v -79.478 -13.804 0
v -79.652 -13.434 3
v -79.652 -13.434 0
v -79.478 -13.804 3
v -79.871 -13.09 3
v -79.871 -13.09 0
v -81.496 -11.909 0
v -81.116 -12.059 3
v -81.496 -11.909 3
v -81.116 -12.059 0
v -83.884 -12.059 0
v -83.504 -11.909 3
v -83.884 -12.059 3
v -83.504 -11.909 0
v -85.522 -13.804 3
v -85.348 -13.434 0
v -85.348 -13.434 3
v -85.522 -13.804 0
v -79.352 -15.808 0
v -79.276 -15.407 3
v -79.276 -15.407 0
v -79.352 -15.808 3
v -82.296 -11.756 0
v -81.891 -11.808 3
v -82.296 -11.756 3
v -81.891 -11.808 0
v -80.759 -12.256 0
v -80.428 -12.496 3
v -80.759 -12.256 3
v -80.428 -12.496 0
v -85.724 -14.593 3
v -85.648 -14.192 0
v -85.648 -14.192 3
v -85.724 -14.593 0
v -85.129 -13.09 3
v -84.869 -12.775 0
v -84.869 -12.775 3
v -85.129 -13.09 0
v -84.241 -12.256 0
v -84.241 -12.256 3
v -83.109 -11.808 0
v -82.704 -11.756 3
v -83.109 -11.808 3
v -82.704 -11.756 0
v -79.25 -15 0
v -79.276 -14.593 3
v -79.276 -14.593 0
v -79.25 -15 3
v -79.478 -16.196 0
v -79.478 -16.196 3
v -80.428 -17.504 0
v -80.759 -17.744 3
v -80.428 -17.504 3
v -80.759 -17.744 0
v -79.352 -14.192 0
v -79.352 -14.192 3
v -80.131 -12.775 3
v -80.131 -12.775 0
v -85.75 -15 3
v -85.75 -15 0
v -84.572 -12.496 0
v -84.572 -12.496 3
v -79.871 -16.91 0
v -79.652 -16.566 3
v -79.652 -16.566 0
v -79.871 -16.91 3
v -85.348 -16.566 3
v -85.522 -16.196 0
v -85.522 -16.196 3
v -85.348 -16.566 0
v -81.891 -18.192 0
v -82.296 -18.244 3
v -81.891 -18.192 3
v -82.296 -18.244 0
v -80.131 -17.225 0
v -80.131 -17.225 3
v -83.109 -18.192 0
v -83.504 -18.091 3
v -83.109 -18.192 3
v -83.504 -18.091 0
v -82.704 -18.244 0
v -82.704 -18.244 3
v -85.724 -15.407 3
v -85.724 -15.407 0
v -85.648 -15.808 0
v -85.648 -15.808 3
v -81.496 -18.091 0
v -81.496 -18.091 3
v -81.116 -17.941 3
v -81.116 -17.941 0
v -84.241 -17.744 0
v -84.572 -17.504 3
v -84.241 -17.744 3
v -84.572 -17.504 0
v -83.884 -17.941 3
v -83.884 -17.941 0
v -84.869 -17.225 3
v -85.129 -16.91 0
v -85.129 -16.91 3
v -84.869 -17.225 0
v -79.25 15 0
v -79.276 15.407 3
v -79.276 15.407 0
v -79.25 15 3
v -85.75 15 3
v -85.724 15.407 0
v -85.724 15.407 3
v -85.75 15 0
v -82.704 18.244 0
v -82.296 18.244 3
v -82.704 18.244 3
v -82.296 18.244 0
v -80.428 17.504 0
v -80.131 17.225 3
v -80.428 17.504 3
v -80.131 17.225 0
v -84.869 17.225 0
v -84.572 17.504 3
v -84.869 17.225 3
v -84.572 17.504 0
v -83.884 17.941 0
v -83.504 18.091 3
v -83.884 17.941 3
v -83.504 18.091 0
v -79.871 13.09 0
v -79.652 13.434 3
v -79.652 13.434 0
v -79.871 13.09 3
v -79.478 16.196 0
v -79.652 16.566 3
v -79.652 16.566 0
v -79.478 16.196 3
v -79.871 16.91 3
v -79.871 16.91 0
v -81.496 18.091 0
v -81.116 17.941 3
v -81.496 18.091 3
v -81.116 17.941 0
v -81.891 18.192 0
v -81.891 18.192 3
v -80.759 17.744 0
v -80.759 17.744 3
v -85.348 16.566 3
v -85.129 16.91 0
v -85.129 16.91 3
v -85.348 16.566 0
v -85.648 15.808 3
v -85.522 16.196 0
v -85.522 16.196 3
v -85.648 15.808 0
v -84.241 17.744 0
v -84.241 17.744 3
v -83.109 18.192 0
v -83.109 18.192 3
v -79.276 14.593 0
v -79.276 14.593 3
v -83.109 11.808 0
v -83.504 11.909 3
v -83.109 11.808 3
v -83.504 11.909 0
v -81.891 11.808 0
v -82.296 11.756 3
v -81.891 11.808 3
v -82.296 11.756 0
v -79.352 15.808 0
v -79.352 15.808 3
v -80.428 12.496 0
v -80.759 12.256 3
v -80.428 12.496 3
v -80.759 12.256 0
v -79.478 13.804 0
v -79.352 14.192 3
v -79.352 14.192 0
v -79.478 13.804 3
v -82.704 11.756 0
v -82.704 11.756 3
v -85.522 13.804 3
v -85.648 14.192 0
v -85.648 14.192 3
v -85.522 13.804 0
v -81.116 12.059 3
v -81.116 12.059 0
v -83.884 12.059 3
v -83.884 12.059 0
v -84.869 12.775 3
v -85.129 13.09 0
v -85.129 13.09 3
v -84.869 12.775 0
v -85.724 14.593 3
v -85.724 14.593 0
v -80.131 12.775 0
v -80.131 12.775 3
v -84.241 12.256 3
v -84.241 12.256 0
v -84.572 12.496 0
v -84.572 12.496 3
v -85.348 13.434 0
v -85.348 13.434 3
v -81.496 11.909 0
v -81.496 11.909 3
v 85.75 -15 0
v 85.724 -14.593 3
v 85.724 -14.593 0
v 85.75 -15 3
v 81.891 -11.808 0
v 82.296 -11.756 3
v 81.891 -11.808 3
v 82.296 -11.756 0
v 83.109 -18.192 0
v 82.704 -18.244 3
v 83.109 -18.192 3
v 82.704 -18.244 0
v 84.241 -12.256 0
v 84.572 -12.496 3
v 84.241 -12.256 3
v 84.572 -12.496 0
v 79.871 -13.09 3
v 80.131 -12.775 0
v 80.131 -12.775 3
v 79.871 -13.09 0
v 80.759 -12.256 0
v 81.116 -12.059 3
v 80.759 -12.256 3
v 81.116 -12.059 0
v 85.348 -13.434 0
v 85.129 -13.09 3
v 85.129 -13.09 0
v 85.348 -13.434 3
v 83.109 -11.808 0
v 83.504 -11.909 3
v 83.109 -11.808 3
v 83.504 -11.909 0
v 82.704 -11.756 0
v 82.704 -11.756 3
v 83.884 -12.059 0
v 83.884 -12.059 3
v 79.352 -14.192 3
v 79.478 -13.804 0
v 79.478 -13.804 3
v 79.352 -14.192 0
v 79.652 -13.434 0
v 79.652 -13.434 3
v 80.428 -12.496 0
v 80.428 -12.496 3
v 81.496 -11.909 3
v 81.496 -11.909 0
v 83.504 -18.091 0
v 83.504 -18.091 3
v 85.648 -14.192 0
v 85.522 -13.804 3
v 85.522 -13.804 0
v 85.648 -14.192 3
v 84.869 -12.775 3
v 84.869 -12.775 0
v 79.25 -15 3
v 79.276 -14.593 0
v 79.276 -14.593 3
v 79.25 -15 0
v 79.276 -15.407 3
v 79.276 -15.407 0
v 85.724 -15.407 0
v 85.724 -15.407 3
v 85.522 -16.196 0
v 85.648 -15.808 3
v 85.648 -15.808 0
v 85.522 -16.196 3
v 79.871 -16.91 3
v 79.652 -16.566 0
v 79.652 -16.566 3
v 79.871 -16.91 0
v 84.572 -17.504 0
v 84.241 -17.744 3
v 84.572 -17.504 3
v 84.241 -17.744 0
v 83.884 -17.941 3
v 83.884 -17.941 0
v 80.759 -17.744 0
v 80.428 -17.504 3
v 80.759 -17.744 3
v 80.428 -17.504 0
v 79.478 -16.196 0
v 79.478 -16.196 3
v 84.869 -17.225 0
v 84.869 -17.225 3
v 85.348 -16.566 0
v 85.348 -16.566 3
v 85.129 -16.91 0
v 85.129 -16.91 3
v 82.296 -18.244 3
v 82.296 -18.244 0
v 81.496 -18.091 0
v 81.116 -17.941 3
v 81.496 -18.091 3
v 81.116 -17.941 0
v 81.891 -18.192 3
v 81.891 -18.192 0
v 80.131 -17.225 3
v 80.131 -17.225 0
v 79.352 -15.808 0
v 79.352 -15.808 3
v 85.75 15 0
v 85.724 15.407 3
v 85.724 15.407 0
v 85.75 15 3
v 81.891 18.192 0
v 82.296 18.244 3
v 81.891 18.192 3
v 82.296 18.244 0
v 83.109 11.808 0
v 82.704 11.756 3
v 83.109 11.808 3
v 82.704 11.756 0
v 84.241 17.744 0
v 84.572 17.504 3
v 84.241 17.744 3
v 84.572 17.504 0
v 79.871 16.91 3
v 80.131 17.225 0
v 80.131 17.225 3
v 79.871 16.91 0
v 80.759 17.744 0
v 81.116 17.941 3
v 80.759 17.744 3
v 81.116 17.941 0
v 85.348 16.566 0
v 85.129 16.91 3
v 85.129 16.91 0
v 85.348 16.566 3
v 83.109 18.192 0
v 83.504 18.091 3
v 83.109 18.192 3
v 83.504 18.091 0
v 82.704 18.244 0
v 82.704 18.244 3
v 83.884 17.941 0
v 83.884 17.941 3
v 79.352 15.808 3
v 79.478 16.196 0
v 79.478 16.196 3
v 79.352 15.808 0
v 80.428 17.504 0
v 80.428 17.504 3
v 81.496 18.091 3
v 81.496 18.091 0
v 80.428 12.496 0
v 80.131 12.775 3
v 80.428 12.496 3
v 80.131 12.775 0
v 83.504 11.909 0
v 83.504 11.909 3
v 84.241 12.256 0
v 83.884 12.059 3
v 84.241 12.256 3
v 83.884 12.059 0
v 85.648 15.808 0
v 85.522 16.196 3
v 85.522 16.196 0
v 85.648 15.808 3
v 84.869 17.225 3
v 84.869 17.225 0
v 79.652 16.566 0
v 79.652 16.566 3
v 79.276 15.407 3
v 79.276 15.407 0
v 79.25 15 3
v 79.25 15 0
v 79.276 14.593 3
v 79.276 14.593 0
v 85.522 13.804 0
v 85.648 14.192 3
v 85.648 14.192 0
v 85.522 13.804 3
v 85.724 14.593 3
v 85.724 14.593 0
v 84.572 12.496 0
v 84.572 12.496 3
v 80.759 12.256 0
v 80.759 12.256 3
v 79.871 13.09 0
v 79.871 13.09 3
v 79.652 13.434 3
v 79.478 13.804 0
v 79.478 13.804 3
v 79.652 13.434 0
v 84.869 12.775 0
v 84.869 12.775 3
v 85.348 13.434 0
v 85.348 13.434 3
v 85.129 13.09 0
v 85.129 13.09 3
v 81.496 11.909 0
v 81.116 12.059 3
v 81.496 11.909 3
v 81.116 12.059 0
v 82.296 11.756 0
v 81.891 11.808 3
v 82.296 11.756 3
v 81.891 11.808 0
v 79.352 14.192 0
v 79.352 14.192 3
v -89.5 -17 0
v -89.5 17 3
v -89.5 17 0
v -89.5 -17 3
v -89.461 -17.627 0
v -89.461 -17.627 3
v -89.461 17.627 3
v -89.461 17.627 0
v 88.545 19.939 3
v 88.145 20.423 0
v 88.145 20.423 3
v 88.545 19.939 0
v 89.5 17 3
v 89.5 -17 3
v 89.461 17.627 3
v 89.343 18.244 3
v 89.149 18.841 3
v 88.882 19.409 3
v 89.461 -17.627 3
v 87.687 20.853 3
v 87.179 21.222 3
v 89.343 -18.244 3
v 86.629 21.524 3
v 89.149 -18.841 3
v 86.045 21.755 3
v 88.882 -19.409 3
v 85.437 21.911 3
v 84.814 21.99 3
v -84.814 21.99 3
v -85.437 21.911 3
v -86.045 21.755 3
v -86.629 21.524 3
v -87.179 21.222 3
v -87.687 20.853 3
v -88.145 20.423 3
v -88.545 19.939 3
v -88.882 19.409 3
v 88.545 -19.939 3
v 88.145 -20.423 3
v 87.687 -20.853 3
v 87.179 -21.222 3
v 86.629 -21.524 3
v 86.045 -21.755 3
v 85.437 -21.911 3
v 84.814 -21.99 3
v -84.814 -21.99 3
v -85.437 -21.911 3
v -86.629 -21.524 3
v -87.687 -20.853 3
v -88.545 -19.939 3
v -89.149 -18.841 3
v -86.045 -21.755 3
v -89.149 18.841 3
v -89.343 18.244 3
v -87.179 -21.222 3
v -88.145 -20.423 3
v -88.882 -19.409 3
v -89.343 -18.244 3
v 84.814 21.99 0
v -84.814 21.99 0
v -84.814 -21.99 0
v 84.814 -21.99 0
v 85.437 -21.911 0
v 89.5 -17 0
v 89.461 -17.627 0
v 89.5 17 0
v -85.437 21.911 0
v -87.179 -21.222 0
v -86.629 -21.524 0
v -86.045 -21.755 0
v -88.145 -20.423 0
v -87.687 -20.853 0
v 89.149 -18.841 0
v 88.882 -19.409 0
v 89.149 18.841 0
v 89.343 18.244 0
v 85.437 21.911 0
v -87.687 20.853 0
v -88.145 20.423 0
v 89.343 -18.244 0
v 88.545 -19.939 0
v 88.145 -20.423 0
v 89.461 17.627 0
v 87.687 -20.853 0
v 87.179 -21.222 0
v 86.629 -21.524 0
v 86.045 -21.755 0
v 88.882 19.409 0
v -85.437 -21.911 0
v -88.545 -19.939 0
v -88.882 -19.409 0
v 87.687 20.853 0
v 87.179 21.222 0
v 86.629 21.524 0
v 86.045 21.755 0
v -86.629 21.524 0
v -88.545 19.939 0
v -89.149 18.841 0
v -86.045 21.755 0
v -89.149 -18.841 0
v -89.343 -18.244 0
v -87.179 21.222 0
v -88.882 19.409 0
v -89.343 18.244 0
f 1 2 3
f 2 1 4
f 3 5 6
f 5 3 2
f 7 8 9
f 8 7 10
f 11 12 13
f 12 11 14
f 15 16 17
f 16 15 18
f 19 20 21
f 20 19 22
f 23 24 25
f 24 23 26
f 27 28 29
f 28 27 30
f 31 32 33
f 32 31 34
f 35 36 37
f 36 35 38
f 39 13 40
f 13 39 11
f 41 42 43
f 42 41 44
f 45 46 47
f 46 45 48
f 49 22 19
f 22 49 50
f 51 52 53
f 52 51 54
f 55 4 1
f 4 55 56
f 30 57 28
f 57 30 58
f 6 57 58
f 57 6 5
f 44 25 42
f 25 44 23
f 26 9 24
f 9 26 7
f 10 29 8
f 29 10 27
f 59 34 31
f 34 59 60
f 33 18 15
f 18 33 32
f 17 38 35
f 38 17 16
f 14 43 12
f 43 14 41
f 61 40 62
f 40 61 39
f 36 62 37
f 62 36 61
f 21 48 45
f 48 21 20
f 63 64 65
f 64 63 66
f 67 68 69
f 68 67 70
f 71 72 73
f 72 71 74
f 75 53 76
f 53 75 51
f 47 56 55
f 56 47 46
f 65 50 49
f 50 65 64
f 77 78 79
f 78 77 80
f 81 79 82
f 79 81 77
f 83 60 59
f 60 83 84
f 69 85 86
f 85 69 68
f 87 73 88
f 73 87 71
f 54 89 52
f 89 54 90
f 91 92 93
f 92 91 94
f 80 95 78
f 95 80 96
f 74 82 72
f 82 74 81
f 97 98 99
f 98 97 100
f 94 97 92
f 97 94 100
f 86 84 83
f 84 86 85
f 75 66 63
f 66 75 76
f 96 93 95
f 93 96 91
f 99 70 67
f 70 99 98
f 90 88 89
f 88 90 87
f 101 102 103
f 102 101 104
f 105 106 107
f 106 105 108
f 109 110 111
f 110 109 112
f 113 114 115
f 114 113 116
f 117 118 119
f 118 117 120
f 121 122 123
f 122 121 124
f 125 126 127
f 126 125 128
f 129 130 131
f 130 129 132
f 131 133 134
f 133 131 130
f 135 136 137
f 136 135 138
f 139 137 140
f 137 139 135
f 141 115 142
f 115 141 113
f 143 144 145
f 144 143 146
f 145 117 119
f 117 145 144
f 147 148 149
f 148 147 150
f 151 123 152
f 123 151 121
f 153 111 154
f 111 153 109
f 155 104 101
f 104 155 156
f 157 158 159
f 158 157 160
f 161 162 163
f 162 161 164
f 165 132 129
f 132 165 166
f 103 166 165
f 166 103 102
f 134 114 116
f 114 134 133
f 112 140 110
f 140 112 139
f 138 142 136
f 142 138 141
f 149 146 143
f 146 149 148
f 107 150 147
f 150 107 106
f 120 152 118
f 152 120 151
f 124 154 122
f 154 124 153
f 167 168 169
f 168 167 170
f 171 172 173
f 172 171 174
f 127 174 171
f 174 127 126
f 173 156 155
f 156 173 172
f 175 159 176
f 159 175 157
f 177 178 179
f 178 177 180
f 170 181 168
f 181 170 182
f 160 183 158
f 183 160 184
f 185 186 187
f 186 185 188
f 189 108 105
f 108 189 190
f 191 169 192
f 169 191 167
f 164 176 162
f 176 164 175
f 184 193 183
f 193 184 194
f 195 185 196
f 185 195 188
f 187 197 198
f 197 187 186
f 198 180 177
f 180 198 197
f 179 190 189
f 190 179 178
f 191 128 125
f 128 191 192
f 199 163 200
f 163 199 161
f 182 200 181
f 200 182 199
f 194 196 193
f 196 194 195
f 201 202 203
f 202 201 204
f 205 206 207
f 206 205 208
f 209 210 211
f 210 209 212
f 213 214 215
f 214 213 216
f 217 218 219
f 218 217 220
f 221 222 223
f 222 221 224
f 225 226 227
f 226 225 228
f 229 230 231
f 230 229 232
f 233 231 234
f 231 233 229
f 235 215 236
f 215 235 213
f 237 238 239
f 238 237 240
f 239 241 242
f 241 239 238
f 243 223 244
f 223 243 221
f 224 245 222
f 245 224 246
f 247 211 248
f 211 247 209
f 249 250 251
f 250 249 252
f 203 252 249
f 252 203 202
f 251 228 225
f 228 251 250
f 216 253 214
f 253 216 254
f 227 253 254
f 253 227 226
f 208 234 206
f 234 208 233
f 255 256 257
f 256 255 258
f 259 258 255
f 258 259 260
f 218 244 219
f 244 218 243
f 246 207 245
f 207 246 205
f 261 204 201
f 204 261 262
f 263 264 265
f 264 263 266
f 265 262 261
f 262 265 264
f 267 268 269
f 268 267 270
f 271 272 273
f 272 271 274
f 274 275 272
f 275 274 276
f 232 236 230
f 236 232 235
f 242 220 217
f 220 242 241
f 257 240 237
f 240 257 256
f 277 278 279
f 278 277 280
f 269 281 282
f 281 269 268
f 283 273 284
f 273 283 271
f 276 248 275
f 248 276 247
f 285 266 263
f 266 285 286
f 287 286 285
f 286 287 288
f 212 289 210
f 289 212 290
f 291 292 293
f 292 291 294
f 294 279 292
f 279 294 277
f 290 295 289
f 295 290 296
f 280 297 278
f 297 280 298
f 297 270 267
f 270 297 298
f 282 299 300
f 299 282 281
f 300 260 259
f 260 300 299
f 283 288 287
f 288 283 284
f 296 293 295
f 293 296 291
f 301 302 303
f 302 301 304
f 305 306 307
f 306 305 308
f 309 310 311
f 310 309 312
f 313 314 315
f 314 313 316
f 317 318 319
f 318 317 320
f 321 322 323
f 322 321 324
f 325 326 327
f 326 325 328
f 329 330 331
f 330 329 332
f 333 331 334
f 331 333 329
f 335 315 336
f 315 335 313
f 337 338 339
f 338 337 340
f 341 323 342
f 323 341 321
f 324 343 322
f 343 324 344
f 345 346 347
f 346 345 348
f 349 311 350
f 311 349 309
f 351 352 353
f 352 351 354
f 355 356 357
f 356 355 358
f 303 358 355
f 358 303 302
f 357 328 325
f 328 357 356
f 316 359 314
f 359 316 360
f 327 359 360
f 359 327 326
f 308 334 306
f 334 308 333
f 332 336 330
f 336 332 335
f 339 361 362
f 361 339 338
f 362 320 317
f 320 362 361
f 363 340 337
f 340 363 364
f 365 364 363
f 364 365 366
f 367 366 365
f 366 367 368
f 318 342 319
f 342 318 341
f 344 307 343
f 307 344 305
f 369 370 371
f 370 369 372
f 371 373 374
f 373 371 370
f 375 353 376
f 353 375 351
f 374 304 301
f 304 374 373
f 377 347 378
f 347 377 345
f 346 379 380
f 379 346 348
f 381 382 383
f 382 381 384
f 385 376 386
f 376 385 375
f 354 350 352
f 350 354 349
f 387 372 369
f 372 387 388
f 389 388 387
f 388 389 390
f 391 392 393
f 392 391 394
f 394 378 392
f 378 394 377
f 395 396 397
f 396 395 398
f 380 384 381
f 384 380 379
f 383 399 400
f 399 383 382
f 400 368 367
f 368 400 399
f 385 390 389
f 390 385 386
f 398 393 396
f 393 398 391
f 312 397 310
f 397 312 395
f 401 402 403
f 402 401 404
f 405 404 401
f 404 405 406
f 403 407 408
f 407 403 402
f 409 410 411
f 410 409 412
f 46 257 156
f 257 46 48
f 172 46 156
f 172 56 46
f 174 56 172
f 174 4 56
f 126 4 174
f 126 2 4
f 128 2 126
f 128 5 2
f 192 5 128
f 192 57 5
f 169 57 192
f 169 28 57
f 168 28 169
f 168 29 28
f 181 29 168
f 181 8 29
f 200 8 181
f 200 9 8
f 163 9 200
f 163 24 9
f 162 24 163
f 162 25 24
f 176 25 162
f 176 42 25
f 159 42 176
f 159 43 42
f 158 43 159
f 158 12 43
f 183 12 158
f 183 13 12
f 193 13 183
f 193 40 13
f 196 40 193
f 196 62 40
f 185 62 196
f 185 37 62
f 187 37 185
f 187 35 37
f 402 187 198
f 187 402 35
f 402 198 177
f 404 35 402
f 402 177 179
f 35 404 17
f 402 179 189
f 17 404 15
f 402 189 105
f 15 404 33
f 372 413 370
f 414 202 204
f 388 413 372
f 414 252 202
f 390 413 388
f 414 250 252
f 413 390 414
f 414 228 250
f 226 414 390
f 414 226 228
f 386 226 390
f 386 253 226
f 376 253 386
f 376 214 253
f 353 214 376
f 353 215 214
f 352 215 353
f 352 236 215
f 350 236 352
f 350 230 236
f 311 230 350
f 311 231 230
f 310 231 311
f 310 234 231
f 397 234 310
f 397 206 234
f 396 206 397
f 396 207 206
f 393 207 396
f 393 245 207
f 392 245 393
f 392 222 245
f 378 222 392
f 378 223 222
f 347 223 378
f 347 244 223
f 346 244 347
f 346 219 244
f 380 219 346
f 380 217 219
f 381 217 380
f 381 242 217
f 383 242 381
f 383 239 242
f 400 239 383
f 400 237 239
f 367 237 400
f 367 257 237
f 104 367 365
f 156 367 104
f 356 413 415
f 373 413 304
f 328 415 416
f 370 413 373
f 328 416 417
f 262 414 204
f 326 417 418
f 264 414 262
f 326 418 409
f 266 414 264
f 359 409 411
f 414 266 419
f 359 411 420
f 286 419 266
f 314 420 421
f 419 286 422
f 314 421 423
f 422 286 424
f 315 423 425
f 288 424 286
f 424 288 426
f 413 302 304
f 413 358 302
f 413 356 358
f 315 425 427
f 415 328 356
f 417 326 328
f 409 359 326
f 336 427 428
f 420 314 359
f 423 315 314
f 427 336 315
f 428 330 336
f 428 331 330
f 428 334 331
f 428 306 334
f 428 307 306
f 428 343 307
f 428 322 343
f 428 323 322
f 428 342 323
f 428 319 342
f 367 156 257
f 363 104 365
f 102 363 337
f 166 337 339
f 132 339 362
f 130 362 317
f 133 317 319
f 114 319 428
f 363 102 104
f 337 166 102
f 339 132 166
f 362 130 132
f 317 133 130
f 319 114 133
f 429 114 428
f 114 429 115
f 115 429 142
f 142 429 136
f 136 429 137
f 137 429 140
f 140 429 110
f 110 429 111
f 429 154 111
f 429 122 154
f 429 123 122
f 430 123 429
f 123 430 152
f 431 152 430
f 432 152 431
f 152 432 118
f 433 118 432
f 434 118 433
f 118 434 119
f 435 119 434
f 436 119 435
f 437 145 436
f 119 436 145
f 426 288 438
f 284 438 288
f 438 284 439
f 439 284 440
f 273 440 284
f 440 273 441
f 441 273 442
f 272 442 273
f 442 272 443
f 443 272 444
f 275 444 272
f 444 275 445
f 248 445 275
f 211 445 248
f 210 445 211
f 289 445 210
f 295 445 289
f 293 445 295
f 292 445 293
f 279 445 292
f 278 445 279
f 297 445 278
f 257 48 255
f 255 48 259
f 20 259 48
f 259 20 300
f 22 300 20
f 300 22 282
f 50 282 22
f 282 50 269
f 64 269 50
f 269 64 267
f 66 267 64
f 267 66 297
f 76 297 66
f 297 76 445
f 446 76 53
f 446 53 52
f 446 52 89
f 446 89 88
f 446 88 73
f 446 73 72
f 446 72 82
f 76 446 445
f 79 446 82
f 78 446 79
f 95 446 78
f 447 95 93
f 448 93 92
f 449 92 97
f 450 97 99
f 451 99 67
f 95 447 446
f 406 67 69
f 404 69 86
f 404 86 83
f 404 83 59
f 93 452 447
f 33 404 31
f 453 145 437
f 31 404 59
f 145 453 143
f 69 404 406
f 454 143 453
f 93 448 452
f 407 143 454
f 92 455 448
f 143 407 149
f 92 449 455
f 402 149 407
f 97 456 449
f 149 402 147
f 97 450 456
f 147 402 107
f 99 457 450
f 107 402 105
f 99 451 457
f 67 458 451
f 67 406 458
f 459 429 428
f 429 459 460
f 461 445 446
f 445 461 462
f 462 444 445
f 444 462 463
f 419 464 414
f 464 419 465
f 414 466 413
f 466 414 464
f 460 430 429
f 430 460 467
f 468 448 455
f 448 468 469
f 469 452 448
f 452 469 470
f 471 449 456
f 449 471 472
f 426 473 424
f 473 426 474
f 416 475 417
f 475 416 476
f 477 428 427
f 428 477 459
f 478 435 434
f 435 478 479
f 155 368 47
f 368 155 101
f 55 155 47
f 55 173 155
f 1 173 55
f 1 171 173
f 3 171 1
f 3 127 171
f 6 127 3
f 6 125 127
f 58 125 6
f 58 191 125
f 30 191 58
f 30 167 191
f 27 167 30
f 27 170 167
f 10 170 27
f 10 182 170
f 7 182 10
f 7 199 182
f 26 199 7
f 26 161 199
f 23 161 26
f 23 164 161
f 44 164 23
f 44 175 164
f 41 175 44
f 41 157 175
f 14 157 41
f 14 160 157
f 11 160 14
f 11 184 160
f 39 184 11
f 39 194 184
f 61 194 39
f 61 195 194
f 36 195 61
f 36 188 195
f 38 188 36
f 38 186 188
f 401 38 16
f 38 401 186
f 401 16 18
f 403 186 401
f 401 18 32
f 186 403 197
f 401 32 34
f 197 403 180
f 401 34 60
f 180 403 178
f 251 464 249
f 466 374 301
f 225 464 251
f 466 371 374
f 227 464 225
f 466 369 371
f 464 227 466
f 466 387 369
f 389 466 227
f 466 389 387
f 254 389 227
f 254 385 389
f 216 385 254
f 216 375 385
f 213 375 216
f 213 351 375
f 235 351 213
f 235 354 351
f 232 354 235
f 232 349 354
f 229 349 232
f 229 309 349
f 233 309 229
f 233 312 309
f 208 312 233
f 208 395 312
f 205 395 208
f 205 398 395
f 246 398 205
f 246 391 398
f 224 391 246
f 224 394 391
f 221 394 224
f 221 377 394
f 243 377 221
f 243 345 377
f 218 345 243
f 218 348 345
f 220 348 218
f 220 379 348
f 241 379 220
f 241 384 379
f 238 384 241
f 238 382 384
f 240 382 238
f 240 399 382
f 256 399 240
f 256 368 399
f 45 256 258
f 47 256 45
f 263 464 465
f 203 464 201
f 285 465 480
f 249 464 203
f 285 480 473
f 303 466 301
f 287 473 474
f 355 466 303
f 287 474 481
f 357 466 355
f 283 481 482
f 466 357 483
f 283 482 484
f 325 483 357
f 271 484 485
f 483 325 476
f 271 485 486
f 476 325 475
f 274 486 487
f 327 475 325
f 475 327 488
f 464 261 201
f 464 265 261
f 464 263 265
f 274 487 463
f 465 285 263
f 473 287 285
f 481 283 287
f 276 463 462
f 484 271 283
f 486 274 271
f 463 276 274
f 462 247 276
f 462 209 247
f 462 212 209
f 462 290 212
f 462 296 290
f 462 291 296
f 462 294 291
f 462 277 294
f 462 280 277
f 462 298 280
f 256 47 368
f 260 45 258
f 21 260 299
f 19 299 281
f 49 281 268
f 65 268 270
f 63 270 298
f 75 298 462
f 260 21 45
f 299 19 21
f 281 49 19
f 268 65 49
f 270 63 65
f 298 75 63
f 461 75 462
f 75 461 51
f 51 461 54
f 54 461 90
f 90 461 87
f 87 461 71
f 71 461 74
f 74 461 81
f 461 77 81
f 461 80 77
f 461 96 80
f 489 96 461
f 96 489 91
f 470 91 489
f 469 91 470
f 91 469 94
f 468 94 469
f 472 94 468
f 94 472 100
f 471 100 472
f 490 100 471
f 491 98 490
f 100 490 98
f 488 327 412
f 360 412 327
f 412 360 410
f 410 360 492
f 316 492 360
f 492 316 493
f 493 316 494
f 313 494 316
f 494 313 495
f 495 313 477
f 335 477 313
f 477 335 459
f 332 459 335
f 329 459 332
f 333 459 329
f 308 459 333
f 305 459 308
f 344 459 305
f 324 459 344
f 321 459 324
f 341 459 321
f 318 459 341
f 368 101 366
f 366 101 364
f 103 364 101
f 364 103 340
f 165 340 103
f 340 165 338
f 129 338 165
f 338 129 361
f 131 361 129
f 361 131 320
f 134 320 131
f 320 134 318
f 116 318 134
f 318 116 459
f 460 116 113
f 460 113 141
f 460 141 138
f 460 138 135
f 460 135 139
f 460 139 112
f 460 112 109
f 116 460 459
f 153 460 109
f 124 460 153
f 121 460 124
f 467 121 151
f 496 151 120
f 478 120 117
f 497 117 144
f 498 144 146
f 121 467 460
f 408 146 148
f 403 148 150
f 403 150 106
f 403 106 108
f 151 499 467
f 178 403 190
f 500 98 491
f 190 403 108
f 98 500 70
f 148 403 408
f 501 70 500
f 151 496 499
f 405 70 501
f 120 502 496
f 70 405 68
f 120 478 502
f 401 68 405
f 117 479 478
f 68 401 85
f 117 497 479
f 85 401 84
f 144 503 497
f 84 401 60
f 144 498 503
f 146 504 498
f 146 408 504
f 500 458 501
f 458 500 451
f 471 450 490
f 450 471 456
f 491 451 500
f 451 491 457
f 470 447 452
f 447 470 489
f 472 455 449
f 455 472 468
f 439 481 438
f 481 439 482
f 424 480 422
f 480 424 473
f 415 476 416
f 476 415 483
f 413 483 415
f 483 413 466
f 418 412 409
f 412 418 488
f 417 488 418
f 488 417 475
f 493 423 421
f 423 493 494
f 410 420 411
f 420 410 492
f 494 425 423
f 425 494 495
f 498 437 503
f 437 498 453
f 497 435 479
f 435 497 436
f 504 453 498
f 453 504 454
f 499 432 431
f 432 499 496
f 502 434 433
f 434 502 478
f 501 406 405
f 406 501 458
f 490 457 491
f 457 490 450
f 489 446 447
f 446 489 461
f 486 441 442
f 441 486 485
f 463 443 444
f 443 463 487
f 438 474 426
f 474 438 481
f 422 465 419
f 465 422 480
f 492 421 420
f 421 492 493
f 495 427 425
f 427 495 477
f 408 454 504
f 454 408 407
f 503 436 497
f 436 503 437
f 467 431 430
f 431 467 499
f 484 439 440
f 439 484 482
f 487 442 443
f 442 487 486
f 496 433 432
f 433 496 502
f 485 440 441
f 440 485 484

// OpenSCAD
$fn = 50;


difference() {
	union() {
		hull() {
			translate(v = [-84.5000000000, 17.0000000000, 0]) {
				cylinder(h = 3, r = 5);
			}
			translate(v = [84.5000000000, 17.0000000000, 0]) {
				cylinder(h = 3, r = 5);
			}
			translate(v = [-84.5000000000, -17.0000000000, 0]) {
				cylinder(h = 3, r = 5);
			}
			translate(v = [84.5000000000, -17.0000000000, 0]) {
				cylinder(h = 3, r = 5);
			}
		}
	}
	union() {
		translate(v = [-82.5000000000, -15.0000000000, -100.0000000000]) {
			cylinder(h = 200, r = 3.2500000000);
		}
		translate(v = [-82.5000000000, 15.0000000000, -100.0000000000]) {
			cylinder(h = 200, r = 3.2500000000);
		}
		translate(v = [82.5000000000, -15.0000000000, -100.0000000000]) {
			cylinder(h = 200, r = 3.2500000000);
		}
		translate(v = [82.5000000000, 15.0000000000, -100.0000000000]) {
			cylinder(h = 200, r = 3.2500000000);
		}
	}
}
